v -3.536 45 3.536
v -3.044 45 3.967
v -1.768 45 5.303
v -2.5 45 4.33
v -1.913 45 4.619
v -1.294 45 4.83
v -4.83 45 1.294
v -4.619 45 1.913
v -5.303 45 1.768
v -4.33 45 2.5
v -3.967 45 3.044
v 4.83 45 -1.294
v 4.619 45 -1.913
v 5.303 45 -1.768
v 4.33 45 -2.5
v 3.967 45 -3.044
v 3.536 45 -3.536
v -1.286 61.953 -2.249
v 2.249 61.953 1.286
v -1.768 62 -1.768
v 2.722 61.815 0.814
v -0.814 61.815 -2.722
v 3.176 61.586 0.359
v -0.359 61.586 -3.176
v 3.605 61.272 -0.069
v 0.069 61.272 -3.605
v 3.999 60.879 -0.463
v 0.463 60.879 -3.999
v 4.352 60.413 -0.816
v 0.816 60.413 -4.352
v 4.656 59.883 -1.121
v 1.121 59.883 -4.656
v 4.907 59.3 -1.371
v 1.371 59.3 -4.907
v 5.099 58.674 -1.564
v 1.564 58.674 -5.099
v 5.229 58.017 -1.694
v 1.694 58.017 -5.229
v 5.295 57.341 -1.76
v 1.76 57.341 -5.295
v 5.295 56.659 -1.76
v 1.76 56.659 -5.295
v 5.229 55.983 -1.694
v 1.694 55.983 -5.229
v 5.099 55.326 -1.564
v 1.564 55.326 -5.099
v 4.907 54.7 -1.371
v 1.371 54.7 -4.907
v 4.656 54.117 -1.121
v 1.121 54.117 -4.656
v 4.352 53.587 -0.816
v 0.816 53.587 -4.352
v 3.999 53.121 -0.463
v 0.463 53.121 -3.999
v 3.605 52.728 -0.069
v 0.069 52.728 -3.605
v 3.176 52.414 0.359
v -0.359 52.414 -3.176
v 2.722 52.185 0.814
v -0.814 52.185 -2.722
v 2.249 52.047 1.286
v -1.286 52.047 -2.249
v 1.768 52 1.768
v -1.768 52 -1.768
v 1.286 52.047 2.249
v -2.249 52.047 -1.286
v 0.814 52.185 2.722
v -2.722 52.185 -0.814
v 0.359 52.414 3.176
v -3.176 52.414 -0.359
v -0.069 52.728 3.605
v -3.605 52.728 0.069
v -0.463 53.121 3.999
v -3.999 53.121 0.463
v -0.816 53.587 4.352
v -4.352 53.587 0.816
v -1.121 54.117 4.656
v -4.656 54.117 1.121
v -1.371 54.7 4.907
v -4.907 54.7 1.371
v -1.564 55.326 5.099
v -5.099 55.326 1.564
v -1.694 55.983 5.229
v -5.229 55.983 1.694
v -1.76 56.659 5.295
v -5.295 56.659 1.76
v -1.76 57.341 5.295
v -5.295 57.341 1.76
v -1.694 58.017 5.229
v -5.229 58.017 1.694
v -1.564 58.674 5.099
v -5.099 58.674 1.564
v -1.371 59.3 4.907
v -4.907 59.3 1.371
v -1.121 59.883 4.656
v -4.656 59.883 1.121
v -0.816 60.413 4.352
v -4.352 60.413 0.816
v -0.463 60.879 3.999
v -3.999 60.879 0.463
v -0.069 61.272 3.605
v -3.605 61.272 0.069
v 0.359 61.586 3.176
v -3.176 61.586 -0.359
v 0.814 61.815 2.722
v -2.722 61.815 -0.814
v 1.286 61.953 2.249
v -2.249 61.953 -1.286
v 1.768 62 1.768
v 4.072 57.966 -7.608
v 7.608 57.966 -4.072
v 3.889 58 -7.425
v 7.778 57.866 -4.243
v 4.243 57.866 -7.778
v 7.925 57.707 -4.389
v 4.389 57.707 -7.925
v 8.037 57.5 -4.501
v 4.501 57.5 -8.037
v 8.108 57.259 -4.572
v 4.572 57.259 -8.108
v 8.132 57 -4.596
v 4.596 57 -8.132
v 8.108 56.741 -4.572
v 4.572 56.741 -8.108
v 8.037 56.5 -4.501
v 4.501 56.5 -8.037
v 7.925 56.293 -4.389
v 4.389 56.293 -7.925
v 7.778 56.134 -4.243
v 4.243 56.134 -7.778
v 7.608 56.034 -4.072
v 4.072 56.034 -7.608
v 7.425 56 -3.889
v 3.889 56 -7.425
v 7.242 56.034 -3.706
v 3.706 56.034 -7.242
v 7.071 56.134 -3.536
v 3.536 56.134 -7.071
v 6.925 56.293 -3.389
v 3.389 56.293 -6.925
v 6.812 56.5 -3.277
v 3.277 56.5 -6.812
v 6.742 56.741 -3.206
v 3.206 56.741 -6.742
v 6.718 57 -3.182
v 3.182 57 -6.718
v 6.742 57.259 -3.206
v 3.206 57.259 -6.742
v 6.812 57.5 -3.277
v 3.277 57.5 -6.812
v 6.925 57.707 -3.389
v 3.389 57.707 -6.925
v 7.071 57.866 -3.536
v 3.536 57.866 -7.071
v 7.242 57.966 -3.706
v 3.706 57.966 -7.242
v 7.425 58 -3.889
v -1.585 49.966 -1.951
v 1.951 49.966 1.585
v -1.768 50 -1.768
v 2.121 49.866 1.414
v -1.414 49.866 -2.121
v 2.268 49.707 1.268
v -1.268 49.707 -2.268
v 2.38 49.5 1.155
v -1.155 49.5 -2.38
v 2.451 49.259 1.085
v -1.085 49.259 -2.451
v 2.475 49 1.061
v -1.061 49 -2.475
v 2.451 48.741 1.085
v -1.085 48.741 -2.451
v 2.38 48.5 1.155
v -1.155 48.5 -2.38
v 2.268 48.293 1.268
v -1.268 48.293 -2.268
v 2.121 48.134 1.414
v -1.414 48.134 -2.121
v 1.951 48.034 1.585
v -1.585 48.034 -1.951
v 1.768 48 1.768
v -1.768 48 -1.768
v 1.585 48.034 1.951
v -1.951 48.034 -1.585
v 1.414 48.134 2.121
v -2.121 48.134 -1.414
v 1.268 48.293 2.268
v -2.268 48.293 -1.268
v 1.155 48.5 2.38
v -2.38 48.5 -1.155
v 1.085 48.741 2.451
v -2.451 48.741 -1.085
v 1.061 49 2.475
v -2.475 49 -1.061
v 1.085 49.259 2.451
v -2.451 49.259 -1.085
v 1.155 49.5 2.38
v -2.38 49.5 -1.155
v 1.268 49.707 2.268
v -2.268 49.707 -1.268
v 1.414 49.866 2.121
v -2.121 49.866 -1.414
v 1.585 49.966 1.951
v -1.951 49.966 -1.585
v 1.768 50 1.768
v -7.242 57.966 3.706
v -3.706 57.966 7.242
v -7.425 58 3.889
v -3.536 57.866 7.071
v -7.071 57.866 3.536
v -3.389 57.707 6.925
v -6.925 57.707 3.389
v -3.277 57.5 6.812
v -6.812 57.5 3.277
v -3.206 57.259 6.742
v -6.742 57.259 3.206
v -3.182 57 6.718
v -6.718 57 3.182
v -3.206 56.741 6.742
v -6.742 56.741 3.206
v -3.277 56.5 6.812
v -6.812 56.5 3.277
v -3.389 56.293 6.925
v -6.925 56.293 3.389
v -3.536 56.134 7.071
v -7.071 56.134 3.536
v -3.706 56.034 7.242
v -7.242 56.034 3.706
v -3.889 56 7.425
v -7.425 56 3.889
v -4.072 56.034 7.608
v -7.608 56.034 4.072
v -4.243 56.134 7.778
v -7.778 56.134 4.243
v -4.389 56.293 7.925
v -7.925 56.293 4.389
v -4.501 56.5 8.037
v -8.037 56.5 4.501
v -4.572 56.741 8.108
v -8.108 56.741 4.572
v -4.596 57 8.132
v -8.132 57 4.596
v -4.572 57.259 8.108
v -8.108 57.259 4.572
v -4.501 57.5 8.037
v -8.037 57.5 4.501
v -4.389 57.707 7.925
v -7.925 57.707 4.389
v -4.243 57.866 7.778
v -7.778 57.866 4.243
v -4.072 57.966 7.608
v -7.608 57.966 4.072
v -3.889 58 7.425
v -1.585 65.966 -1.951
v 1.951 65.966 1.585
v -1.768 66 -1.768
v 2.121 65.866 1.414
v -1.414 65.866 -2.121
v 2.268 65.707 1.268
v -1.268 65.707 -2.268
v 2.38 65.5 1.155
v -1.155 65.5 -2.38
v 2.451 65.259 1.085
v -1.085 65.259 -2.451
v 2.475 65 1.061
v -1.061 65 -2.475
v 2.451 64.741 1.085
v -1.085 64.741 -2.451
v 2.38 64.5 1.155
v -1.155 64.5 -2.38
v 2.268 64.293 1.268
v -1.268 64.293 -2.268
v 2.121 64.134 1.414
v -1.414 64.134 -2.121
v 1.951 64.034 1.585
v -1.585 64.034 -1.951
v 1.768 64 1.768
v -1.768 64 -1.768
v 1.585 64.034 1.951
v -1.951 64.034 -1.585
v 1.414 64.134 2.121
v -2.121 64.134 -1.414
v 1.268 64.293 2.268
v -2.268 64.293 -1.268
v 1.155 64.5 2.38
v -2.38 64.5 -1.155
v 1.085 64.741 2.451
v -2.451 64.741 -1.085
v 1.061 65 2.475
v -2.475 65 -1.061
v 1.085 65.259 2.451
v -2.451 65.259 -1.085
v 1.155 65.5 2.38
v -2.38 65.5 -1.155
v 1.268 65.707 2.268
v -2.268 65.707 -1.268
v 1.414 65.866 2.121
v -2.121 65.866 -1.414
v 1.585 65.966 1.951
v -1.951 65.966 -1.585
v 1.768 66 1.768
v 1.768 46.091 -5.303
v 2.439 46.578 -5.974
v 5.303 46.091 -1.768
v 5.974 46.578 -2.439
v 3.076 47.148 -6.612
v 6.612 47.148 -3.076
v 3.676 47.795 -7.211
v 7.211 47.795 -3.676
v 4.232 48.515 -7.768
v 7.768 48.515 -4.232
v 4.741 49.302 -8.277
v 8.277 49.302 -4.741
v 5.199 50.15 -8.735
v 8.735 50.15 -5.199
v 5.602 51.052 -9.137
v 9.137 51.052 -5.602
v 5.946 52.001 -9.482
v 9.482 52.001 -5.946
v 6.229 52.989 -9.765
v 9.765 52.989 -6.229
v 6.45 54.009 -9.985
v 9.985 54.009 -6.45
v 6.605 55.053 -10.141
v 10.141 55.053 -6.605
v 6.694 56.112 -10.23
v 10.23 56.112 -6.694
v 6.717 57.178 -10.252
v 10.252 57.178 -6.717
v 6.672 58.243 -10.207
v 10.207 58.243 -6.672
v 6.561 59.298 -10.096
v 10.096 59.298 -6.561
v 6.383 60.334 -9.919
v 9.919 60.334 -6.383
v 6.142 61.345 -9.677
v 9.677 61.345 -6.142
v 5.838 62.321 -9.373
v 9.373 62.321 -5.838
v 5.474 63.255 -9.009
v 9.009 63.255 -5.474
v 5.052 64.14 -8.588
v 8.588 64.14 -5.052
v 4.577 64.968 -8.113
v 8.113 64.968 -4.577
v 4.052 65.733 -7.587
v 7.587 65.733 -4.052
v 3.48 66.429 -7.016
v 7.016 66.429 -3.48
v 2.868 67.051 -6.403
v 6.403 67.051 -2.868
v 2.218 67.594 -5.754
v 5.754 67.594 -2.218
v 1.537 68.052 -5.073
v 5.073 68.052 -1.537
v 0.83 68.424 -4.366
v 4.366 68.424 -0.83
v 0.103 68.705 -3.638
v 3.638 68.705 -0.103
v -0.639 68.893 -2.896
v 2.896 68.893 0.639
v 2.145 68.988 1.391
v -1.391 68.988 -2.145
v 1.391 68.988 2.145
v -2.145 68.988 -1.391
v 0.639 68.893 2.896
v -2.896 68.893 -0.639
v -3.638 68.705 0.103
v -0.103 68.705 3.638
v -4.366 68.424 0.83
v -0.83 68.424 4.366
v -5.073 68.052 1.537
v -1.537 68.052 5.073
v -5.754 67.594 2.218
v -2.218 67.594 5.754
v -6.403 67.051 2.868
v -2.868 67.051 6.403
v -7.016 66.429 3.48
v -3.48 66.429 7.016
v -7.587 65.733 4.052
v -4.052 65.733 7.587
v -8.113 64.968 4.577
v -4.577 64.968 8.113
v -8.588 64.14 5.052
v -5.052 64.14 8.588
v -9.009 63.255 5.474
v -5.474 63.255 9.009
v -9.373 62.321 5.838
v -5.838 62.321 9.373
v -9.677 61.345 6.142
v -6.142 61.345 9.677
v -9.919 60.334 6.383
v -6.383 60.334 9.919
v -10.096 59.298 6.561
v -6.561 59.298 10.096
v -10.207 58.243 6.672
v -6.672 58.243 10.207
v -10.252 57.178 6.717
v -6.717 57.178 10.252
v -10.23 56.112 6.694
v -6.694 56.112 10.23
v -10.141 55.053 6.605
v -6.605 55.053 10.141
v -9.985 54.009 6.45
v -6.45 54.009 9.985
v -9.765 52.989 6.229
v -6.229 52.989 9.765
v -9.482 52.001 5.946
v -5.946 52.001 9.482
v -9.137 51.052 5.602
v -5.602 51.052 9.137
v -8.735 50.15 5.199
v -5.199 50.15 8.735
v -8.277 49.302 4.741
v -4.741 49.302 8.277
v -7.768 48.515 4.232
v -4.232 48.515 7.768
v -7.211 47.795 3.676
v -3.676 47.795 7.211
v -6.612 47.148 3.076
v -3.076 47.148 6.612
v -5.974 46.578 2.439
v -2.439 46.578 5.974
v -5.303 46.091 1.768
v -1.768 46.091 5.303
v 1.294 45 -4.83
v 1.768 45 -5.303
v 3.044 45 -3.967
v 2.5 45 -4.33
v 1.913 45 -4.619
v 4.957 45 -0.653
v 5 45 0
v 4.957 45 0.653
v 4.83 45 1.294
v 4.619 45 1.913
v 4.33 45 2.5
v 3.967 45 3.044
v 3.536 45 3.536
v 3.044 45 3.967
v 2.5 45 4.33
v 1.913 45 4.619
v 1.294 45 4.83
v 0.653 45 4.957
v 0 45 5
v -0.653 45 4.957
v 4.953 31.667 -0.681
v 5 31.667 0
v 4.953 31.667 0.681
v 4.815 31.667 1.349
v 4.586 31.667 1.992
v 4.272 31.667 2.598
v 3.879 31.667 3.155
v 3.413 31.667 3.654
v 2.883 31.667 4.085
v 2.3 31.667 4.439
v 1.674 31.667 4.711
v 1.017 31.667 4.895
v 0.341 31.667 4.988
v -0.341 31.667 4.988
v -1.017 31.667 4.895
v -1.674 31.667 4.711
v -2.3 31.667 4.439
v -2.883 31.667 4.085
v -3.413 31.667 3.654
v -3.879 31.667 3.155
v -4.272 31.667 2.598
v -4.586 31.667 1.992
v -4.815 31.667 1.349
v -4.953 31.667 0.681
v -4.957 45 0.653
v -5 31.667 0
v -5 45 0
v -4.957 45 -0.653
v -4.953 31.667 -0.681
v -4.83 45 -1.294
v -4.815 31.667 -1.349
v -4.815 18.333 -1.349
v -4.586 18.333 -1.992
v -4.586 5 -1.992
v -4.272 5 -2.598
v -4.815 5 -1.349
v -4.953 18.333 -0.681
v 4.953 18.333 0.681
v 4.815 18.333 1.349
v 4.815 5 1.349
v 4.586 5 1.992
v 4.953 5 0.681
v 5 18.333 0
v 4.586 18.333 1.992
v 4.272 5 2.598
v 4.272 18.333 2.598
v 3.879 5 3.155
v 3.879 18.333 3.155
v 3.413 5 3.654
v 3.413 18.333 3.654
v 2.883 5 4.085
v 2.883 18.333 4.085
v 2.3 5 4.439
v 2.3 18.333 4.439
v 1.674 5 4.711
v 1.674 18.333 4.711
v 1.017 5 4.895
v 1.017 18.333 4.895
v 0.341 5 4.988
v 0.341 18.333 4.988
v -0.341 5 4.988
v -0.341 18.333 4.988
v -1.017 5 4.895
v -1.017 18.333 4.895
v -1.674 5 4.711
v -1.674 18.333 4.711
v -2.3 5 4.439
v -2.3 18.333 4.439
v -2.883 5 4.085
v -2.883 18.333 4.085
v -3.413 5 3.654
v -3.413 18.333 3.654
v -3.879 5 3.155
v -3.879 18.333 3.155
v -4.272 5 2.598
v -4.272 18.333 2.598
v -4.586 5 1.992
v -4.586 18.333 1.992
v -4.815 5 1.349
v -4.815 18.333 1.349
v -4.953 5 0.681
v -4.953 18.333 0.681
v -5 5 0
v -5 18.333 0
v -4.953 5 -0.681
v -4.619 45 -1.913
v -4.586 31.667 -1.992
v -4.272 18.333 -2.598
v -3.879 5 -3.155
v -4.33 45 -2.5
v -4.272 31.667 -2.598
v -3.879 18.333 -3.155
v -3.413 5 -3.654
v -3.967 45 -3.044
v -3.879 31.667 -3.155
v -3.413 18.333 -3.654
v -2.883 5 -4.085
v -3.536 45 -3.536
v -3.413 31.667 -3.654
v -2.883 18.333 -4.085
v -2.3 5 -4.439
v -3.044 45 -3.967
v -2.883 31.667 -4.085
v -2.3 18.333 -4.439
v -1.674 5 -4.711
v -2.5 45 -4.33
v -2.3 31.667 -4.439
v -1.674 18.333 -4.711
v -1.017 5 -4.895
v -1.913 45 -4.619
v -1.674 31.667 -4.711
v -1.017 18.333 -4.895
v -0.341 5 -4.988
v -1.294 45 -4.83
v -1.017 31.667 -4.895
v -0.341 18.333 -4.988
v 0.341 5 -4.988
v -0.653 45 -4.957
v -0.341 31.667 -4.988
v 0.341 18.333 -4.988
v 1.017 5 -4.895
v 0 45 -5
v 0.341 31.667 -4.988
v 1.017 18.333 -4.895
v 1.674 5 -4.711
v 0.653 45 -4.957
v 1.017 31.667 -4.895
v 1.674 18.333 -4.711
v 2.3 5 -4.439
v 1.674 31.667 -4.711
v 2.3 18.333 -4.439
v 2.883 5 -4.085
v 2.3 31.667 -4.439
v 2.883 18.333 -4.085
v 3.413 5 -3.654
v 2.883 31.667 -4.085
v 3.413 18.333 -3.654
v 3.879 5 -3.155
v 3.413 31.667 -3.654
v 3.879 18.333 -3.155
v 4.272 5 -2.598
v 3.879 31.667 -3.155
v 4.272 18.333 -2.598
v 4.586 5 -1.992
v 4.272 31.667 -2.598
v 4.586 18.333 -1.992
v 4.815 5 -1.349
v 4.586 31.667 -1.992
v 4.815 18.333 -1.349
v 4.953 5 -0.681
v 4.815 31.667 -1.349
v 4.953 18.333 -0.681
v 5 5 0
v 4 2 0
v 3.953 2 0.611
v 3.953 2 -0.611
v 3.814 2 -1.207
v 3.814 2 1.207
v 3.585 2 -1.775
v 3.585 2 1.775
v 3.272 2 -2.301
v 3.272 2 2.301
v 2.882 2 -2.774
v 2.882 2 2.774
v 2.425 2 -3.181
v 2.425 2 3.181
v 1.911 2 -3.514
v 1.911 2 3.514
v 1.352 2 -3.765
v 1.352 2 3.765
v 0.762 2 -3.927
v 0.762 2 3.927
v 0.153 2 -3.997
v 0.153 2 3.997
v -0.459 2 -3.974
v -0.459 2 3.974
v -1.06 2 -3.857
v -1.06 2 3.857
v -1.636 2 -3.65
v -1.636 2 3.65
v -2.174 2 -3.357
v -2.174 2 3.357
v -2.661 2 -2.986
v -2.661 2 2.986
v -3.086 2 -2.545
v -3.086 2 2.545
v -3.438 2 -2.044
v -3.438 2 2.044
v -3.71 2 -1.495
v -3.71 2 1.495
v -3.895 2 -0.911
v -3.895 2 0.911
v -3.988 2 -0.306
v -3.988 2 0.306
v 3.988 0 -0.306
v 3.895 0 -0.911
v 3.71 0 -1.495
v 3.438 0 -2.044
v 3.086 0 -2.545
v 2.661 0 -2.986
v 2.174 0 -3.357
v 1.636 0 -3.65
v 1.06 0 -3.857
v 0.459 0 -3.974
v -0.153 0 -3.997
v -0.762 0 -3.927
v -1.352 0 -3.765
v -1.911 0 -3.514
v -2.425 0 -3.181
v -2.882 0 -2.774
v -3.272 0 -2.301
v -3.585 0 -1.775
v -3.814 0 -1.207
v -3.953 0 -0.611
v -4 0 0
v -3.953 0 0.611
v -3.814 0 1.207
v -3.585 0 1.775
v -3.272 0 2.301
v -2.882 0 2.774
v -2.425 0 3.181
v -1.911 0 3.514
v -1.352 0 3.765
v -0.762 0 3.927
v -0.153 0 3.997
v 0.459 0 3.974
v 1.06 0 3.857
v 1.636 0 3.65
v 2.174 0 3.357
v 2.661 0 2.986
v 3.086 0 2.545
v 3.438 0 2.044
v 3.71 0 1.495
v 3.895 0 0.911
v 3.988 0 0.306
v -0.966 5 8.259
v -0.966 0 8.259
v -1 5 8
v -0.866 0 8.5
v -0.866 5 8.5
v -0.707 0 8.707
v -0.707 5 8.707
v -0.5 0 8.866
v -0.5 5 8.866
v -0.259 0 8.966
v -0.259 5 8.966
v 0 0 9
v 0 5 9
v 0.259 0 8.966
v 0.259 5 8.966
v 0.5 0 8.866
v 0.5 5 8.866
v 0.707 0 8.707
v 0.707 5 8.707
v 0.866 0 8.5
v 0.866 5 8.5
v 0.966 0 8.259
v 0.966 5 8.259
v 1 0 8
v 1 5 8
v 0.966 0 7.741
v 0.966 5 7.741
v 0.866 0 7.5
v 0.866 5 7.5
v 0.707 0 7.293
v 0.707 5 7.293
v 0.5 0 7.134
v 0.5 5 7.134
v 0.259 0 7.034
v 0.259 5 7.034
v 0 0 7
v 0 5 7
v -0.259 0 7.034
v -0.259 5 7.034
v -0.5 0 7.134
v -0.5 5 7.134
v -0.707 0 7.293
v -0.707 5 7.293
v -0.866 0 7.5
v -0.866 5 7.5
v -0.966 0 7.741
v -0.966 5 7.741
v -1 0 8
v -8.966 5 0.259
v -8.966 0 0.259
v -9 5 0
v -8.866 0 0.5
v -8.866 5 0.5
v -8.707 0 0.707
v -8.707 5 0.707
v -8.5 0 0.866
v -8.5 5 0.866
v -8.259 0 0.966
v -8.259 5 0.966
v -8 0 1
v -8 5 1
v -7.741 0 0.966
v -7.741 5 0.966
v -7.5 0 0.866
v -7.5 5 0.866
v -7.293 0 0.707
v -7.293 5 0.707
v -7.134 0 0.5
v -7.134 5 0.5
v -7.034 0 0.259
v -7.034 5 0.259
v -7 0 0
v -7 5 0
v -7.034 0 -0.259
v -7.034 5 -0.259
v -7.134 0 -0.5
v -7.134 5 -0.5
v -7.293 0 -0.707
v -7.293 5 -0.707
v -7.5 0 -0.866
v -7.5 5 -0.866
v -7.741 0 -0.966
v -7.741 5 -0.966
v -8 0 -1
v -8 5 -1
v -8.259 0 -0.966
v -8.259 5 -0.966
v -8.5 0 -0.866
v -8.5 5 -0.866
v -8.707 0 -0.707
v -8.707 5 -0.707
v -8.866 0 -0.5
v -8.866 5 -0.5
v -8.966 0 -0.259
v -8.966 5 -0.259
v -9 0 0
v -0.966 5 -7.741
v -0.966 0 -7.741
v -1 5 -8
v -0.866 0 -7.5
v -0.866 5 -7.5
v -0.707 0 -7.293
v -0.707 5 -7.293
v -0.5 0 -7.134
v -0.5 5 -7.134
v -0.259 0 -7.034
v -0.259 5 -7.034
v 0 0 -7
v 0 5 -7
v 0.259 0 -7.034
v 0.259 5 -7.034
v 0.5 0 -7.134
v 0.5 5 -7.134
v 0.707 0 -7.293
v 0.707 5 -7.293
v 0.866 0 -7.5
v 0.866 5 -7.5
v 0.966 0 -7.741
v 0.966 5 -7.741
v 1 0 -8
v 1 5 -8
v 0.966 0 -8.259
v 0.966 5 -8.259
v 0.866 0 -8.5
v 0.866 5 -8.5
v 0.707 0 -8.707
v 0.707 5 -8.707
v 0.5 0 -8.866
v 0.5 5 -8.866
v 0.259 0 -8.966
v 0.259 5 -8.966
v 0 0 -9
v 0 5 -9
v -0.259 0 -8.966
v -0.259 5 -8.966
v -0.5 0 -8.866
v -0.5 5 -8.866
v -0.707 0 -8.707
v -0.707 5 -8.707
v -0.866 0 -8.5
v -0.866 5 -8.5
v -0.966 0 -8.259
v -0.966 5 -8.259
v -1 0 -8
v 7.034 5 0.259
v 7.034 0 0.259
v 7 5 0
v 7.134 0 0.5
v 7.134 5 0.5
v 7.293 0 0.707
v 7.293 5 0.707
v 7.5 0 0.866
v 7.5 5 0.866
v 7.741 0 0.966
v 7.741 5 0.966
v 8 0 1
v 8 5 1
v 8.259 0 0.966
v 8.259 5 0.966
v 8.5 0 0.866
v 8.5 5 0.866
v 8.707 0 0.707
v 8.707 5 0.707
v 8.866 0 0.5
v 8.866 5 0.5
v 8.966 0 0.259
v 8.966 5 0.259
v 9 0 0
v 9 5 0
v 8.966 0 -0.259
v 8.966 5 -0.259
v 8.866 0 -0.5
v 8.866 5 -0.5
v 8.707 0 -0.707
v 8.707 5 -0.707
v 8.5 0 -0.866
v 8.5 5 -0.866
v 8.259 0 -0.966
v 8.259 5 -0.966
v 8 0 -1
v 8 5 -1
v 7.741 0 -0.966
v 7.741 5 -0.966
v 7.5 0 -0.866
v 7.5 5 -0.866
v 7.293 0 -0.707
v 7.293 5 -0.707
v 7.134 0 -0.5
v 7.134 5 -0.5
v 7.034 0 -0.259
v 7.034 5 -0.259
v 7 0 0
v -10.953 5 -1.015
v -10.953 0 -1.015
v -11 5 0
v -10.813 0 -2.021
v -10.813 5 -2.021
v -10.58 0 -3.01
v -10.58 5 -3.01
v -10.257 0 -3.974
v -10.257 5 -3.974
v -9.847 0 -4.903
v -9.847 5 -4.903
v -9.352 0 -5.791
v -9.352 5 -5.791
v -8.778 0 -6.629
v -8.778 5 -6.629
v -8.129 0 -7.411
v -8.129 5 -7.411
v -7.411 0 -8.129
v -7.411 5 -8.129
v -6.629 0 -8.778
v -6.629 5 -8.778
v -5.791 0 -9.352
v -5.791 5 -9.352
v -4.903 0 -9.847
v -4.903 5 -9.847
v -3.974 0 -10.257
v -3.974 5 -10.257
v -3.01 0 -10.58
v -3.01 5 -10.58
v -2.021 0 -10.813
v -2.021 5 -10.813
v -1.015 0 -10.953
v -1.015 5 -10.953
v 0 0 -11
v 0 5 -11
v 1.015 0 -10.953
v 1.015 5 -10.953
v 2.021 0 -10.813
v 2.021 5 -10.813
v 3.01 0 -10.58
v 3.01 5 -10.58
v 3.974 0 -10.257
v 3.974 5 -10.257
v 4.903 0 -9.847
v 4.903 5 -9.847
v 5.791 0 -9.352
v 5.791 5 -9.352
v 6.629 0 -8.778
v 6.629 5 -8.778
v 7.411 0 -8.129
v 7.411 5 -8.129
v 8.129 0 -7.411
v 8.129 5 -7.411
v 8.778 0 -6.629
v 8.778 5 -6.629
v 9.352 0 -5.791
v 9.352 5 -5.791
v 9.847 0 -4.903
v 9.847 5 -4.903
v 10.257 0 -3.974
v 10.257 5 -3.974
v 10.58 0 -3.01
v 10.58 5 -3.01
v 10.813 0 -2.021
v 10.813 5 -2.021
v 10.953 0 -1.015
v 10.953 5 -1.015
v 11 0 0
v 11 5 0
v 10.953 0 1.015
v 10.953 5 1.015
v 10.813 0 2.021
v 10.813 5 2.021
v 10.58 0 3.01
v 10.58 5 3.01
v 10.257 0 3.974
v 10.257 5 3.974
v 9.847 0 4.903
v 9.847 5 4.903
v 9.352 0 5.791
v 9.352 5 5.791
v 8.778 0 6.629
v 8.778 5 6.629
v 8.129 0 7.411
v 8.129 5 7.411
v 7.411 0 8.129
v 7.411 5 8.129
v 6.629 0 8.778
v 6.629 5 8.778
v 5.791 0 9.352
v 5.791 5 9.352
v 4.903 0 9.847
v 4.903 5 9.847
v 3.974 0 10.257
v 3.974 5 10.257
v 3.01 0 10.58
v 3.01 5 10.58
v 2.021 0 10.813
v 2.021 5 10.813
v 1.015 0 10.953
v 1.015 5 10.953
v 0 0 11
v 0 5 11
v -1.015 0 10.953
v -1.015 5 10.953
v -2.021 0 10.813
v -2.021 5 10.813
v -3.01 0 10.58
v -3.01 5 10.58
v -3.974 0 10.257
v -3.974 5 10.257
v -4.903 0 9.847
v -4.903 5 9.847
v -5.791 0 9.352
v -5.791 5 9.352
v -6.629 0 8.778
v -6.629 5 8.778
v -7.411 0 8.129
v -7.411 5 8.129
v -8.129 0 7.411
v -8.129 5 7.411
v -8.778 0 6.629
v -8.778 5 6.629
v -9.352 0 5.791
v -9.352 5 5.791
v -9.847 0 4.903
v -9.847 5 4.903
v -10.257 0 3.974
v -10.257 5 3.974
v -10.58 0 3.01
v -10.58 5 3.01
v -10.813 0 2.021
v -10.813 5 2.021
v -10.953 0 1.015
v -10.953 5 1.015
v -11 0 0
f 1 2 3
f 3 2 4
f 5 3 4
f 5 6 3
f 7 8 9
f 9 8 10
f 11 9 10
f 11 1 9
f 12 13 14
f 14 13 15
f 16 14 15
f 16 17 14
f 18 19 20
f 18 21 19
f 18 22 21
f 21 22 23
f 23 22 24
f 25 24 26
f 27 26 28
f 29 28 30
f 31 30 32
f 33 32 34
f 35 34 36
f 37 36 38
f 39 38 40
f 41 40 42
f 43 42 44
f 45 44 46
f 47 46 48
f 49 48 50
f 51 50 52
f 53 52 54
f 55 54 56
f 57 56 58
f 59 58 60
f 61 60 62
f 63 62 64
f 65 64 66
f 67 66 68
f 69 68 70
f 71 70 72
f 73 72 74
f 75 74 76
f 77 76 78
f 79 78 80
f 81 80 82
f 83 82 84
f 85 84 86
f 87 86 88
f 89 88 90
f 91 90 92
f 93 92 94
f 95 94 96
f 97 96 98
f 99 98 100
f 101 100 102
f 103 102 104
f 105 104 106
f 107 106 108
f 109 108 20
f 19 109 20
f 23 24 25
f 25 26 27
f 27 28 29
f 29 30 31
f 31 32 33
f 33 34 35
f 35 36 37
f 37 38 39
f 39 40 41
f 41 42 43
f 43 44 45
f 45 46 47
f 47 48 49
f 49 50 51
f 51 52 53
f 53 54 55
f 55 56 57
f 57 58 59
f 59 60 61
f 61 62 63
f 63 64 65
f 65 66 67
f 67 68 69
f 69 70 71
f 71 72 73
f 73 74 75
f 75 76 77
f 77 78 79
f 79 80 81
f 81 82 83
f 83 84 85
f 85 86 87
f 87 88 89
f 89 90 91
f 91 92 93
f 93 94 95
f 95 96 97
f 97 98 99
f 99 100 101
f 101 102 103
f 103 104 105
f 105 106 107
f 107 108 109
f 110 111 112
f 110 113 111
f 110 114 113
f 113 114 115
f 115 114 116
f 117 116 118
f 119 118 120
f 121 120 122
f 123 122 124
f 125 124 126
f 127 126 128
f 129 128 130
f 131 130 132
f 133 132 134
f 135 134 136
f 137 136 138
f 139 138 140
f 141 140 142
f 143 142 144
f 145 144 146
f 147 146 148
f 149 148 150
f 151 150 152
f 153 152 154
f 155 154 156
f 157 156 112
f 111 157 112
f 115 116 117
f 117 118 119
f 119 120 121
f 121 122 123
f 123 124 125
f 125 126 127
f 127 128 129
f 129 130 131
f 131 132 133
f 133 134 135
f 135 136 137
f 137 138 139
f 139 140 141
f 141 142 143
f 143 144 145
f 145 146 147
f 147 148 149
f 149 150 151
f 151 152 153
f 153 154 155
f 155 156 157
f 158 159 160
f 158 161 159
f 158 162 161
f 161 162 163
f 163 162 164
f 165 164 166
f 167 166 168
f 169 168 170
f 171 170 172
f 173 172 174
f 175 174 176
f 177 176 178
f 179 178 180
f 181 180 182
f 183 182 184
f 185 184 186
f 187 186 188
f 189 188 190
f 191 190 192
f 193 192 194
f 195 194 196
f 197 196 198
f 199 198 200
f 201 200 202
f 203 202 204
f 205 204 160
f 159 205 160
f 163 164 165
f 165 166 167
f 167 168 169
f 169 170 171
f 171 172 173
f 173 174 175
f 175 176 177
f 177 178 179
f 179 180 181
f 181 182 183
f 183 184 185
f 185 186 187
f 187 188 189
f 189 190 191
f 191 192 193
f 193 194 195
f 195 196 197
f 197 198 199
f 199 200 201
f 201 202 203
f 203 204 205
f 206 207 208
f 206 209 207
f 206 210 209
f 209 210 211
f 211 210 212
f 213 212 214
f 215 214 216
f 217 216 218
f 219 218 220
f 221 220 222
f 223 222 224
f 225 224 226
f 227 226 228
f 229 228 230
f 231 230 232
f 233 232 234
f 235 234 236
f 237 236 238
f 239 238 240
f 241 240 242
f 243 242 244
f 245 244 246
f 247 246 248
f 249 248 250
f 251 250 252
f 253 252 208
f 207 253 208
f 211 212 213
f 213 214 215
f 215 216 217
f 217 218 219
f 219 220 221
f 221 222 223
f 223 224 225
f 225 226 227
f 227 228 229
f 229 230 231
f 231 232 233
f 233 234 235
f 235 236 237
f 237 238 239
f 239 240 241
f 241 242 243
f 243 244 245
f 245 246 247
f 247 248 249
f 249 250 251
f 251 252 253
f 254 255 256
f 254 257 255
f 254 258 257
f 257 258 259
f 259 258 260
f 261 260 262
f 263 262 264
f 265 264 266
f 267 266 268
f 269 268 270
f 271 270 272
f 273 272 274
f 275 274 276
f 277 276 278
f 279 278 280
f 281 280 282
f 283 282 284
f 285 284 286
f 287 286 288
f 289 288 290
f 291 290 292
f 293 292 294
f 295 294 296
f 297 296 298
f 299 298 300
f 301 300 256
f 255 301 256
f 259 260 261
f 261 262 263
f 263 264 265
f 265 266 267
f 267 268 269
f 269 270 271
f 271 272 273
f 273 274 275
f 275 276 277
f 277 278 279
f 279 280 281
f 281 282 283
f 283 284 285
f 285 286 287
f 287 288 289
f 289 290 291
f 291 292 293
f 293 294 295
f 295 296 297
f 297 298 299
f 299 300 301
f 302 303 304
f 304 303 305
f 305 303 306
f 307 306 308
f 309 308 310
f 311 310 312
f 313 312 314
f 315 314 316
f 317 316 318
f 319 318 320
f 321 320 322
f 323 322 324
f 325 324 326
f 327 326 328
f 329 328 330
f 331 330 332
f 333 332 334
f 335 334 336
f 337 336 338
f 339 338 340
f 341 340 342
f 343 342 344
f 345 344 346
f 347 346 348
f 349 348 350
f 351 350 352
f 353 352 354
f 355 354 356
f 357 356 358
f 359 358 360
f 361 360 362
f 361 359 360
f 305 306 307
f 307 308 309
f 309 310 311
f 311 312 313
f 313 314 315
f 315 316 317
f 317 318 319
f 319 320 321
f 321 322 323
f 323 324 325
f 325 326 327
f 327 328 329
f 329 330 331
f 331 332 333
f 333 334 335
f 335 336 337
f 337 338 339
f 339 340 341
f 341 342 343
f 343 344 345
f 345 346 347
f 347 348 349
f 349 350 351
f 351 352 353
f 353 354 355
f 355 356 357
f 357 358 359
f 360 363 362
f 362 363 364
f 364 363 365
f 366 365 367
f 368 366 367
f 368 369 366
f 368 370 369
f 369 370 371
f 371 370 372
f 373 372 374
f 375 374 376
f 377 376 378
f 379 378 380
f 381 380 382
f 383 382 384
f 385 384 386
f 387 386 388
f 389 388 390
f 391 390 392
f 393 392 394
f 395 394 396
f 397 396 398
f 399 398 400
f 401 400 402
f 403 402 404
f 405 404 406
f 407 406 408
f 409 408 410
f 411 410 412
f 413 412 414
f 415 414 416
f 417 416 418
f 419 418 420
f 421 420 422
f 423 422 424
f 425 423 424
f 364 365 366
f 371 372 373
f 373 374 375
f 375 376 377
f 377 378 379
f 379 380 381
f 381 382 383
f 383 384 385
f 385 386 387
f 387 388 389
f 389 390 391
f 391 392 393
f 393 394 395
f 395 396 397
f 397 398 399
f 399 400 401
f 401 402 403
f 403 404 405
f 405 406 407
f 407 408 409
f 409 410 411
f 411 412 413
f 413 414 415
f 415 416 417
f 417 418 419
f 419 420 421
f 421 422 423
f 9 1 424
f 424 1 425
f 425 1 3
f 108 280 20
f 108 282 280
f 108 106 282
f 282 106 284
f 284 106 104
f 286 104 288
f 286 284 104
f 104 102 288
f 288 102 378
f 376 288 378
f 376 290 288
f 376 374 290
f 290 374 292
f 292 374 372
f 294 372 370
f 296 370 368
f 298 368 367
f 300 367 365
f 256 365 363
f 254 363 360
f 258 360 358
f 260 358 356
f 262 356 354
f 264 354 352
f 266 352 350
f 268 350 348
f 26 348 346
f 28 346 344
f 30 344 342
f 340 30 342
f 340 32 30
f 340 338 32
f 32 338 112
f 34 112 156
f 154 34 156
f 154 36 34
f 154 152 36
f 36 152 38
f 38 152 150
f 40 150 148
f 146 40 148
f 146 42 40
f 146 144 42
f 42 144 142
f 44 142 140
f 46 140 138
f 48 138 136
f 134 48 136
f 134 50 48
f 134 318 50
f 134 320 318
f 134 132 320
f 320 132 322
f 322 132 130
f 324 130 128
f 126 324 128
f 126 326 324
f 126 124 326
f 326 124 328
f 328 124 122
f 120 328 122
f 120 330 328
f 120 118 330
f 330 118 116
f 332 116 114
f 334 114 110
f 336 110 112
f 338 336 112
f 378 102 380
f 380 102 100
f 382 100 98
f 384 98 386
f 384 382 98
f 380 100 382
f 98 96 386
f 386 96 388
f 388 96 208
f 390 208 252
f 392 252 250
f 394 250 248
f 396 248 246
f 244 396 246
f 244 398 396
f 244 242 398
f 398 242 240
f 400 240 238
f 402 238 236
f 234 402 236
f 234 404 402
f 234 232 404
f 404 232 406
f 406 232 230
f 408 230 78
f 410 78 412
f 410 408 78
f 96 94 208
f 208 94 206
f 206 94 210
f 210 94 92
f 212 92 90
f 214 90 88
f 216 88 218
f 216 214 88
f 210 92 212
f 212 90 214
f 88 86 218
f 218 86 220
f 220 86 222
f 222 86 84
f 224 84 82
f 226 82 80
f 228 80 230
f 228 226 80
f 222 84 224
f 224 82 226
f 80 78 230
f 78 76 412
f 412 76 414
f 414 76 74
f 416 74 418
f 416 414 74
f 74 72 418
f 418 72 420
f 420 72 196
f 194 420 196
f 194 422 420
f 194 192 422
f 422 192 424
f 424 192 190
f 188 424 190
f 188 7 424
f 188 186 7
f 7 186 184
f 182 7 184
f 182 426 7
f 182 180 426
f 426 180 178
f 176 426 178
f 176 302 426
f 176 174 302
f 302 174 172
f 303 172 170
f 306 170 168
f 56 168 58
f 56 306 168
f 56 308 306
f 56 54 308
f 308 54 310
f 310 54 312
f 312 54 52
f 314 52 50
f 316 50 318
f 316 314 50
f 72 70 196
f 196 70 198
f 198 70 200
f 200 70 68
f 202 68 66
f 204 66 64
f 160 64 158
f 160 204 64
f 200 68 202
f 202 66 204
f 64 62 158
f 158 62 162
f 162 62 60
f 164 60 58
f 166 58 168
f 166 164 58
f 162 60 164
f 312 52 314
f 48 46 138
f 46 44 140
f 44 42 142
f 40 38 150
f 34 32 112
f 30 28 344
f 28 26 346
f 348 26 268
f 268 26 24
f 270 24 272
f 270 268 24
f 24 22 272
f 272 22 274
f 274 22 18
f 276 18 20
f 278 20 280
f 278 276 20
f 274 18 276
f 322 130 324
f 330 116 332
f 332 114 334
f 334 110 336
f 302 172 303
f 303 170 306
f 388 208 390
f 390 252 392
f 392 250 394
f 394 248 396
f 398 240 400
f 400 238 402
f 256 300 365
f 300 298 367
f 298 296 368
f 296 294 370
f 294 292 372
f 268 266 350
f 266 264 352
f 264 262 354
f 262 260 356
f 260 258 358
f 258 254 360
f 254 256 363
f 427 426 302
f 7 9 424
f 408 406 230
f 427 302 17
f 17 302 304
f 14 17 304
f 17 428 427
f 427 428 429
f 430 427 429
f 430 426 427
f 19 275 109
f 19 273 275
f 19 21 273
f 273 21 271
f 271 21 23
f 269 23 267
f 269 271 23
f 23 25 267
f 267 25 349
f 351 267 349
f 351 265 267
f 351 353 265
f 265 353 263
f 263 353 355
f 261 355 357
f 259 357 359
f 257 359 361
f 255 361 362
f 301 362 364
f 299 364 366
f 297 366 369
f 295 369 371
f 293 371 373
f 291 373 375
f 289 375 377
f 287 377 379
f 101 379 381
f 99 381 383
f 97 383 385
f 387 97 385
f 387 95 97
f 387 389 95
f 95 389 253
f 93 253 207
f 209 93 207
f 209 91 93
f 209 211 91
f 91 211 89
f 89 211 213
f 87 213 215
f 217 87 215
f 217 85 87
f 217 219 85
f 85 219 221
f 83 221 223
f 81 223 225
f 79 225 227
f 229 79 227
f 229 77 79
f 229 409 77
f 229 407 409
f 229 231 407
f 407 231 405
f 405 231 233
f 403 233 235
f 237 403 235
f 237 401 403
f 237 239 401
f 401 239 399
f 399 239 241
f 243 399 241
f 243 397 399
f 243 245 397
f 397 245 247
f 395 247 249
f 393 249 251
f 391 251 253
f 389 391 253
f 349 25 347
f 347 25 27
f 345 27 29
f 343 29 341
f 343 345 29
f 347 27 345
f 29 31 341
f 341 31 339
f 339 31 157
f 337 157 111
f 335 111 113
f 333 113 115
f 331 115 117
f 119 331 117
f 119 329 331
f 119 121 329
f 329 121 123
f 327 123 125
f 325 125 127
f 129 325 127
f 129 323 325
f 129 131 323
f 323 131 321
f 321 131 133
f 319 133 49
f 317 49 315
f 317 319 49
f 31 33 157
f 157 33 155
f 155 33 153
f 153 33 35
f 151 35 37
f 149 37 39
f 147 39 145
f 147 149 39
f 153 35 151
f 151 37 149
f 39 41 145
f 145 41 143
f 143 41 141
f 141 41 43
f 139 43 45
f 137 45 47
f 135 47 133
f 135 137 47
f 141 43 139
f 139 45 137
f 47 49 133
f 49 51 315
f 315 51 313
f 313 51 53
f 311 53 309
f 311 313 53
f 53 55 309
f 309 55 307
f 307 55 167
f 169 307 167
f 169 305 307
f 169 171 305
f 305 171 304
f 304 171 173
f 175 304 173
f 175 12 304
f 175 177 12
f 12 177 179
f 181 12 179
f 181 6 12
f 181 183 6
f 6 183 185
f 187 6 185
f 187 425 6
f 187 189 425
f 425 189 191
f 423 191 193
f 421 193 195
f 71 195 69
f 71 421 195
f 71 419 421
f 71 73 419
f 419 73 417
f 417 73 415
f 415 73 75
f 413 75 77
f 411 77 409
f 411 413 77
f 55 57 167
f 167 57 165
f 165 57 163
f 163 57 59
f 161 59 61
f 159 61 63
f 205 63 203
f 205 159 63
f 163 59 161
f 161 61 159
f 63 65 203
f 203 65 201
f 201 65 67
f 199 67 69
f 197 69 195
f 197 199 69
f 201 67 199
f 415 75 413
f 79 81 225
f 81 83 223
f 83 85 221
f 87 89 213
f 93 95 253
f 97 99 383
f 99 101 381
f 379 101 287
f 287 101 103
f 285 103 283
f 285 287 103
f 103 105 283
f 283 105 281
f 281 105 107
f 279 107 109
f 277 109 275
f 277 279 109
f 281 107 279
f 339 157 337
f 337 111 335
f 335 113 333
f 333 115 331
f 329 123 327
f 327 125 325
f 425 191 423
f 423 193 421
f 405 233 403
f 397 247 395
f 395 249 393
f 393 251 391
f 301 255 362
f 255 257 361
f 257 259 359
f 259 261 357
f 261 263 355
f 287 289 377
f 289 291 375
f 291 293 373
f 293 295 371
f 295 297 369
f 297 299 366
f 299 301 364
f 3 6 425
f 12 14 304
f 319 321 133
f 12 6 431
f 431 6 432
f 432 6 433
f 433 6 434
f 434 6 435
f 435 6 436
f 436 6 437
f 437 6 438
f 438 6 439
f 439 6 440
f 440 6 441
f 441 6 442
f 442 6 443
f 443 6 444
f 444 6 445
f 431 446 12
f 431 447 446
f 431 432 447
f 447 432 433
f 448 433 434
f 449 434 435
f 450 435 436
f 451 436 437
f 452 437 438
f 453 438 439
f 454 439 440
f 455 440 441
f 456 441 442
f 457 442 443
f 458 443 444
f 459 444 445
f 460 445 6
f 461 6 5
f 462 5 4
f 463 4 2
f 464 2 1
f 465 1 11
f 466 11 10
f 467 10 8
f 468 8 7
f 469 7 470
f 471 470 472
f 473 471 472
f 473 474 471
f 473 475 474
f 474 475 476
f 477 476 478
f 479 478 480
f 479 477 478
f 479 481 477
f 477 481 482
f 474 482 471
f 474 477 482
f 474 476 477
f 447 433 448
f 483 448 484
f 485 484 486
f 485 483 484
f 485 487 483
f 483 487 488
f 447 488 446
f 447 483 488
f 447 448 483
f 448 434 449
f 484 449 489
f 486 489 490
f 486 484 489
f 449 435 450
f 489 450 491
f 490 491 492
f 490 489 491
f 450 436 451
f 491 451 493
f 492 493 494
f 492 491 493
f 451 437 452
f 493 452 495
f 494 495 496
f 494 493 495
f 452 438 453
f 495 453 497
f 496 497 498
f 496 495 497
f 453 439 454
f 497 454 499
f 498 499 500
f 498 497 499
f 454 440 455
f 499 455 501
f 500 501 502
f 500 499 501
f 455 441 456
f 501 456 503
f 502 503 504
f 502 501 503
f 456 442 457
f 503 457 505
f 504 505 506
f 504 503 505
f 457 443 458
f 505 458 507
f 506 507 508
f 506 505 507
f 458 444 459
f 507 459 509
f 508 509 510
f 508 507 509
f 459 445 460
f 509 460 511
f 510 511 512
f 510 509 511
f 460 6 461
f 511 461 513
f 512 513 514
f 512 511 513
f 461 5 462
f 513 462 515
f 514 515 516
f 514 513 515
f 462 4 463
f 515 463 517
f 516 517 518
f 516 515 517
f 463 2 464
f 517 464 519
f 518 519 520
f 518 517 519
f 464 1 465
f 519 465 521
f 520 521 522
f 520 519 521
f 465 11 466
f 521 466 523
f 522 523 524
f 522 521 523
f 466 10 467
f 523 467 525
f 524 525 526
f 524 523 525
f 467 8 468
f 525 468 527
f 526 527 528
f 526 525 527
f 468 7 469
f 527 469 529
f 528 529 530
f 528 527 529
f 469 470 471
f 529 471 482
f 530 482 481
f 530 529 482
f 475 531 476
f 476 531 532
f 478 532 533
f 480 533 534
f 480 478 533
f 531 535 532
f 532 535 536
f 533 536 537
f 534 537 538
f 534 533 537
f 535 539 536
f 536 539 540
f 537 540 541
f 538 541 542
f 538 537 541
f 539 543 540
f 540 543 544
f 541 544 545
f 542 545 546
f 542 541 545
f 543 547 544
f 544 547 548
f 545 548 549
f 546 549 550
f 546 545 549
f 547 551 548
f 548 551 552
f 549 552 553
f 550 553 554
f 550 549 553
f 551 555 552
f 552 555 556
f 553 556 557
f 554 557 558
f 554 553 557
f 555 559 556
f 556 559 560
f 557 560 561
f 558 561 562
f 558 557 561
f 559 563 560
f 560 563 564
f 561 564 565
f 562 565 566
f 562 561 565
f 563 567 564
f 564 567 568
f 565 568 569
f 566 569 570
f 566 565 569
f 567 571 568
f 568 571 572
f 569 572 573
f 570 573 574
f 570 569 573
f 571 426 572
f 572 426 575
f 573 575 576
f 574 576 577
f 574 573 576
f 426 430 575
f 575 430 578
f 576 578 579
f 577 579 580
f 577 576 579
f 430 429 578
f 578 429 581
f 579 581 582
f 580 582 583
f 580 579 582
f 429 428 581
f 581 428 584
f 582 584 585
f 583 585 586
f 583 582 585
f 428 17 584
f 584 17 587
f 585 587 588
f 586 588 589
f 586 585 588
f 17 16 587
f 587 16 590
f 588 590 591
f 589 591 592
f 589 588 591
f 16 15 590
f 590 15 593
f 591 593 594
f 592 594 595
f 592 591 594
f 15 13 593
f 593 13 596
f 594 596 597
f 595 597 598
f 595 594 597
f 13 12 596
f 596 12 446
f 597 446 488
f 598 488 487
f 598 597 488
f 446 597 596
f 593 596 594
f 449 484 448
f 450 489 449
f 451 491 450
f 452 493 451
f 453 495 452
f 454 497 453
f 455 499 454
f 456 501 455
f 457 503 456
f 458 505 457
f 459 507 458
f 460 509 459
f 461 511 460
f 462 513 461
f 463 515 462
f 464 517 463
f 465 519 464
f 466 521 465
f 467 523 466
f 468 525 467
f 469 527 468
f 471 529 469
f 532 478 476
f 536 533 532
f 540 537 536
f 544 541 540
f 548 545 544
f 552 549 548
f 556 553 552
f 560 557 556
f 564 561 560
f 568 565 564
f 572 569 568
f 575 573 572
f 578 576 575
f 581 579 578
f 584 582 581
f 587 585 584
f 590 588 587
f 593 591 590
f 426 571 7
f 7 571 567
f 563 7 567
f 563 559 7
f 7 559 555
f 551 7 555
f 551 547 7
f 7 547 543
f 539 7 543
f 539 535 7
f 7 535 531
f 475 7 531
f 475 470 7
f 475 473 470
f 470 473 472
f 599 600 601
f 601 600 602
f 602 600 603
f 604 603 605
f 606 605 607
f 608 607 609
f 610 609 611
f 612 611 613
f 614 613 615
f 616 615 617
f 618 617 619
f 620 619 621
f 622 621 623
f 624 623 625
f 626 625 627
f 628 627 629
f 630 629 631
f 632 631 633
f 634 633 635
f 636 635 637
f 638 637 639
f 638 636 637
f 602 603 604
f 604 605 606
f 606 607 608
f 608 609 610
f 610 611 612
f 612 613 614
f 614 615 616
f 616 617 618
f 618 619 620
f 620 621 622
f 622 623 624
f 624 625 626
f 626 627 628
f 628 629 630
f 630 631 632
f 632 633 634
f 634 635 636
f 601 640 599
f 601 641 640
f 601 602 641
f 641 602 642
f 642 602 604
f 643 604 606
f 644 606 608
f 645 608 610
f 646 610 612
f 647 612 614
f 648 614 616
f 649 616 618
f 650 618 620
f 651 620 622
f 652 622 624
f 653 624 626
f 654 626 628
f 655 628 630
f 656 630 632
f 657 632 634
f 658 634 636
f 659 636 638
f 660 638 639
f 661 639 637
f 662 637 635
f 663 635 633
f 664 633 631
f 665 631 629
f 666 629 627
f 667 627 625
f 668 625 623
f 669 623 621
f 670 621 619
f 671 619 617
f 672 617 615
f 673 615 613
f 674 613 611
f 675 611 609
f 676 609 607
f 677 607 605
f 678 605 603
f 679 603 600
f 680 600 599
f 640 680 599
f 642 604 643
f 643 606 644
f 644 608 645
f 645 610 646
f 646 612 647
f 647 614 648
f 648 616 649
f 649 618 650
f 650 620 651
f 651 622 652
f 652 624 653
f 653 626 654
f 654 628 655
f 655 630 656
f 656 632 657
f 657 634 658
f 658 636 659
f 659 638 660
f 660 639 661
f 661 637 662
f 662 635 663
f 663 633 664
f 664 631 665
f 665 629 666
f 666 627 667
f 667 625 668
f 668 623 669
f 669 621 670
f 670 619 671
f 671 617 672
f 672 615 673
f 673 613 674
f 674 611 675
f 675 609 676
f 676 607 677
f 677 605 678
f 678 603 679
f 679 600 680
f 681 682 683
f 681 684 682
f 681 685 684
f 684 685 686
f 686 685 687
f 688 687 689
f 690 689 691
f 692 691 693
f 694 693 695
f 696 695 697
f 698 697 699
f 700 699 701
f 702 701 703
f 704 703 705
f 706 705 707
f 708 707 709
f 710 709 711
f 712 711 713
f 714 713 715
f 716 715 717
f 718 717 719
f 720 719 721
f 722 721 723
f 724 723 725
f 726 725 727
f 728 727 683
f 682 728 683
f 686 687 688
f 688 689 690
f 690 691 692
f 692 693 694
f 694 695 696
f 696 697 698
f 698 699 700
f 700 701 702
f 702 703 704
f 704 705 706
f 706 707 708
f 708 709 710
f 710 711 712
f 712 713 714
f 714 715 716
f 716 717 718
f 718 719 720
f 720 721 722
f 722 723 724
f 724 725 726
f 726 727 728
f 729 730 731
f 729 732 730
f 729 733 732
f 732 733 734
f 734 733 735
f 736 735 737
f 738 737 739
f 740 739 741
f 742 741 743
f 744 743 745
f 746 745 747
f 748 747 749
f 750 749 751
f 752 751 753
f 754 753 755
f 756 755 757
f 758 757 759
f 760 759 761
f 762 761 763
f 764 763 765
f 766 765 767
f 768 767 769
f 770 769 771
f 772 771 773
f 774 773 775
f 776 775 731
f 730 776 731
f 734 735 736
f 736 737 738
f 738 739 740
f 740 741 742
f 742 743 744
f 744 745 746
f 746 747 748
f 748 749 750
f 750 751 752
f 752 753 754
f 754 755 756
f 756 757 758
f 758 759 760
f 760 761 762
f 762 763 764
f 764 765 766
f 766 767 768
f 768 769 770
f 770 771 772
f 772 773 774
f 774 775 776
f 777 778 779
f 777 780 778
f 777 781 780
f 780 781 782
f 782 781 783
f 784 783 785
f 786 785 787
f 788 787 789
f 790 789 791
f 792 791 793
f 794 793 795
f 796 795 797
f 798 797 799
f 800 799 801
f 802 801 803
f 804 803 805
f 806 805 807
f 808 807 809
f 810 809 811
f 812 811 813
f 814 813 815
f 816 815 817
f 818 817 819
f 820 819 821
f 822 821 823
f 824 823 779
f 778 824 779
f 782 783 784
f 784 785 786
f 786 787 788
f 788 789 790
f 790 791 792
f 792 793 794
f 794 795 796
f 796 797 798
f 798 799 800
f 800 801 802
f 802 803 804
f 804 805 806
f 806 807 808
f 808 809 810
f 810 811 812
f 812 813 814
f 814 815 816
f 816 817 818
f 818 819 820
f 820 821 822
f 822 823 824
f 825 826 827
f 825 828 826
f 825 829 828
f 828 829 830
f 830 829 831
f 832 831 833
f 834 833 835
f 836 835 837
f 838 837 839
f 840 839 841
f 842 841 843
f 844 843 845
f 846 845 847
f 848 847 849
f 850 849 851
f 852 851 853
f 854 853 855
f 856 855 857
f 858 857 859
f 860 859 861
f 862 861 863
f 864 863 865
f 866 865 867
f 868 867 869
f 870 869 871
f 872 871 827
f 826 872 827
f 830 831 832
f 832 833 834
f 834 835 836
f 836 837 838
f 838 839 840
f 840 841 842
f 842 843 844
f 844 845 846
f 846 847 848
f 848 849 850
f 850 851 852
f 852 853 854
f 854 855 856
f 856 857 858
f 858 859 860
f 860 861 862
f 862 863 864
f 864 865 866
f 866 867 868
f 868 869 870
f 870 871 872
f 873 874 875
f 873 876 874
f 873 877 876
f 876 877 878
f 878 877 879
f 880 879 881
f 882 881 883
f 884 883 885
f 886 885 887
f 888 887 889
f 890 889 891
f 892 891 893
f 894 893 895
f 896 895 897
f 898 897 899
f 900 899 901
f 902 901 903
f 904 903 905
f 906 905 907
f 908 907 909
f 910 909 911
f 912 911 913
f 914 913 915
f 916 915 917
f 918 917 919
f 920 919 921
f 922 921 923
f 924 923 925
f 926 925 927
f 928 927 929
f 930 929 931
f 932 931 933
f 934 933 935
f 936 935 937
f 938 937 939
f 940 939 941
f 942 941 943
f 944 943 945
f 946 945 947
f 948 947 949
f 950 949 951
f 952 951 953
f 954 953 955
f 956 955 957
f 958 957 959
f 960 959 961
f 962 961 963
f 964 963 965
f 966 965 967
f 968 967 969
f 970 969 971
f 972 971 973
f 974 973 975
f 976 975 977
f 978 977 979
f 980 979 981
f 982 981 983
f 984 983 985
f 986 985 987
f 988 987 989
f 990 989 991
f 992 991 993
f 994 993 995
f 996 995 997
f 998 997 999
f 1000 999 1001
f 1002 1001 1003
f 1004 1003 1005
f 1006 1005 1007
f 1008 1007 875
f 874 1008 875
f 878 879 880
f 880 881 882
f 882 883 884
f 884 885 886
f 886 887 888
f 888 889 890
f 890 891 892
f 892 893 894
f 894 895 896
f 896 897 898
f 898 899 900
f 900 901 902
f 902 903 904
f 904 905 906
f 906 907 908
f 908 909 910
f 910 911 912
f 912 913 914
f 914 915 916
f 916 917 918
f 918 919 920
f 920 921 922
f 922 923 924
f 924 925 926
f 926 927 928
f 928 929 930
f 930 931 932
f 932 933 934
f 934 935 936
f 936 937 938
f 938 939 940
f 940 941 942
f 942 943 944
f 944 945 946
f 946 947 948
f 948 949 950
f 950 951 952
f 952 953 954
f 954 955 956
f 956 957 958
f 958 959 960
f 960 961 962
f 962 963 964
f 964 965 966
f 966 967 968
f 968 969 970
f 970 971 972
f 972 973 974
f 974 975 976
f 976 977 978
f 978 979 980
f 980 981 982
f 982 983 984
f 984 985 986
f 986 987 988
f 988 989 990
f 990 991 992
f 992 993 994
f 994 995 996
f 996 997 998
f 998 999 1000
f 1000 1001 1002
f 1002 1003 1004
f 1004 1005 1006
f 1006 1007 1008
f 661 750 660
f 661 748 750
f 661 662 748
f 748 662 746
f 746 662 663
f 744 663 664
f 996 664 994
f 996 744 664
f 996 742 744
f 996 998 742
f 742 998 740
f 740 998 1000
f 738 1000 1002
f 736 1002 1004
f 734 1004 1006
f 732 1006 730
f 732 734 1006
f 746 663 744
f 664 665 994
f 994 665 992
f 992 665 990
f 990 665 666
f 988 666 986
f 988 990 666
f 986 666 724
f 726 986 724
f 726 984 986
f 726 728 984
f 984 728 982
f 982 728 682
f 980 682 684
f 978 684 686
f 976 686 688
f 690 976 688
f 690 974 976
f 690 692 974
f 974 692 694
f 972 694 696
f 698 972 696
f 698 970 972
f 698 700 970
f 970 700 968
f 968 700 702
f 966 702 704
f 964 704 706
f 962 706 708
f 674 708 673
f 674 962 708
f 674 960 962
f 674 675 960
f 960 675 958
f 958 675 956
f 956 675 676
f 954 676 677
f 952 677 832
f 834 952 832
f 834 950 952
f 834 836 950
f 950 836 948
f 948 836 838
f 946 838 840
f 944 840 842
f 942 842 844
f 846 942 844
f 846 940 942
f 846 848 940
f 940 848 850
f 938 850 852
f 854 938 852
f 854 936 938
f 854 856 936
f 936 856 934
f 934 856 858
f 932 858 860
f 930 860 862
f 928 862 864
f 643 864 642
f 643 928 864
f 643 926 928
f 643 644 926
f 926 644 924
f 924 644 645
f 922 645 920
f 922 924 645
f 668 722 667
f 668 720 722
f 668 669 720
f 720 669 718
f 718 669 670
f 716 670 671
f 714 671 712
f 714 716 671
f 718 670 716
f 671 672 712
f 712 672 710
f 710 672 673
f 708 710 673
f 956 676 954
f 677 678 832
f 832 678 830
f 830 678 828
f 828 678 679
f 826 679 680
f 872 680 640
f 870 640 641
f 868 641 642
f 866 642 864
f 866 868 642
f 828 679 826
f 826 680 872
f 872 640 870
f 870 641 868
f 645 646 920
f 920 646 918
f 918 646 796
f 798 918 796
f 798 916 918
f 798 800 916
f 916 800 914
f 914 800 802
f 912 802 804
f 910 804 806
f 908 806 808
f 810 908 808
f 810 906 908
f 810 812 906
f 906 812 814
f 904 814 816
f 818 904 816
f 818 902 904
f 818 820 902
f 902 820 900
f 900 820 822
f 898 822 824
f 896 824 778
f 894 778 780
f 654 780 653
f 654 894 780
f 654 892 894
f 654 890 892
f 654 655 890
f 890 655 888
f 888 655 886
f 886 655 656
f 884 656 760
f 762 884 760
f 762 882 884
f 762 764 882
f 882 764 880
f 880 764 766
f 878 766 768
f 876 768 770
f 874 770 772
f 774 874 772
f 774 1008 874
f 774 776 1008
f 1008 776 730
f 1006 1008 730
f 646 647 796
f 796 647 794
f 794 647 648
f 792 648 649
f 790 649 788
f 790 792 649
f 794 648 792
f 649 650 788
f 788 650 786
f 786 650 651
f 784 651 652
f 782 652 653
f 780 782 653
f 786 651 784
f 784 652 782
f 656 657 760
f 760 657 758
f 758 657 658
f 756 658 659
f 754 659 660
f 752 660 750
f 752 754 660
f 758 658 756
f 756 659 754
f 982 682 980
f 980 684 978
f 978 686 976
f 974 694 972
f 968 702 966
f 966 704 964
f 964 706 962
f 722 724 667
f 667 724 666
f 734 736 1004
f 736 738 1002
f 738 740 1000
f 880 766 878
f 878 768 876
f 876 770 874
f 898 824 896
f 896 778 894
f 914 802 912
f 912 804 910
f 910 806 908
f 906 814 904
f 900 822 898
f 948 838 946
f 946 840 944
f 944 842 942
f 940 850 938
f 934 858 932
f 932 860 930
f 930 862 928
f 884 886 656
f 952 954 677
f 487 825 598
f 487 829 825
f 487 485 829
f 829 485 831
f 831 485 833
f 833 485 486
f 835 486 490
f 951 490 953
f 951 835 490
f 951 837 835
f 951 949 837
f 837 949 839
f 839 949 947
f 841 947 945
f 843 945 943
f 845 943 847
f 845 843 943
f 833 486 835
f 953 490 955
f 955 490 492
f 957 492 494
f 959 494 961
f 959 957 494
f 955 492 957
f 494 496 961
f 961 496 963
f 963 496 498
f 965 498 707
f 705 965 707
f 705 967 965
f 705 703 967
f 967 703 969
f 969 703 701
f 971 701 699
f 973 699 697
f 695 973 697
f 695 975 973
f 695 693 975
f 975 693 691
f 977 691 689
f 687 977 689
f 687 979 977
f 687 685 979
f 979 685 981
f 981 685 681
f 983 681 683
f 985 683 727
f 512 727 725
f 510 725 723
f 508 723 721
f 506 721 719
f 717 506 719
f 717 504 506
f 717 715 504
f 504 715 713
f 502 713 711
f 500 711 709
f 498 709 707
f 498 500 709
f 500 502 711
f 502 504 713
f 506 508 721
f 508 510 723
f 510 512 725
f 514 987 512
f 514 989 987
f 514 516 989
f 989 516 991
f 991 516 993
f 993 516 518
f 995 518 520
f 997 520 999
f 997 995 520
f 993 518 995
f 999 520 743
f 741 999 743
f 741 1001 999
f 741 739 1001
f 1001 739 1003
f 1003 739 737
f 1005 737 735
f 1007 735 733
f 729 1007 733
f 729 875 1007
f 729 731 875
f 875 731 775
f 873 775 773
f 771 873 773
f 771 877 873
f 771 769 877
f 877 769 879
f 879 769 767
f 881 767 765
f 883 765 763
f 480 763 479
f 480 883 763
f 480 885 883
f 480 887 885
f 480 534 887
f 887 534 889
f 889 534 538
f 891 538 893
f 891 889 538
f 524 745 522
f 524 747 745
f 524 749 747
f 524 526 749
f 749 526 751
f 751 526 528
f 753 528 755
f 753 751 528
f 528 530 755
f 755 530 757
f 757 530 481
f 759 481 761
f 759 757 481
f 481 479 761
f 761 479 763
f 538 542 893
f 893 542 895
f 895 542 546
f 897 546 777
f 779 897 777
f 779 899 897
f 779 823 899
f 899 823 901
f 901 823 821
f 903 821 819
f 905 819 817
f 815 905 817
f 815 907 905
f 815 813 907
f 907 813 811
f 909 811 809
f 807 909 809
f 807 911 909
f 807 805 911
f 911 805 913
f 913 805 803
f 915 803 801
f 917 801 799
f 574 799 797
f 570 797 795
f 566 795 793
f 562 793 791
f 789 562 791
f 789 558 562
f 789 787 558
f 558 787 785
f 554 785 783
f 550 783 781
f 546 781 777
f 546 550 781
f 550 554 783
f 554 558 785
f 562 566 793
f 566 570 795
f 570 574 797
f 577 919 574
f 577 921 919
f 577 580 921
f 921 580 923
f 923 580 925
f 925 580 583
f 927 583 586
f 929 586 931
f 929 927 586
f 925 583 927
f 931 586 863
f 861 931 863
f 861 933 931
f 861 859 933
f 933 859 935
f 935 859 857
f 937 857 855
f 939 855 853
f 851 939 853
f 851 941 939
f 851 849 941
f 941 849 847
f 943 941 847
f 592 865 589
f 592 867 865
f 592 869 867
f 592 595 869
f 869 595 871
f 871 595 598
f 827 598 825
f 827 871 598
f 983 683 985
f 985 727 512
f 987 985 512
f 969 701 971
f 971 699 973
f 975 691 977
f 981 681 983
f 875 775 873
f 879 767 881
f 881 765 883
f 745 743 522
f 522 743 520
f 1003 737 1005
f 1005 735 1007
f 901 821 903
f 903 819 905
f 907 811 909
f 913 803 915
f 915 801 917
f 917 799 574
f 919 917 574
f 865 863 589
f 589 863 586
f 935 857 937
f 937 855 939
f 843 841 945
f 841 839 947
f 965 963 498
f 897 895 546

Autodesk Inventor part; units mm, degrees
ref_plane "YZ Plane" through (0, 0, 0) normal (1, 0, 0) x (0, 1, 0)
ref_plane "XZ Plane" through (0, 0, 0) normal (0, 1, 0) x (-1, 0, 0)
sketch "Esquisse1" plane through (0, 0, 0) normal (0, 1, 0) x (-1, 0, 0)
  circle A0 centre (0, 0) radius 11
  line L0 (0, 0) -> (-8, 0) construction
  circle A1 centre (-8, 0) radius 1
  circle A2 centre (0, -8) radius 1
  circle A3 centre (8, 0) radius 1
  circle A4 centre (0, 8) radius 1
  circle A5 centre (0, 0) radius 4
  dimension "d0" = 22
  dimension "d1" = 8
  dimension "d2" = 2
  dimension "d5" = 360
  dimension "d7" = 8
extrude "Extrusion1" add sketch "Esquisse1" along normal blind 5
sketch "Esquisse2" plane through (0, 5, 0) normal (0, 1, 0) x (1, 0, 0)
  circle A0 centre (0, 0) radius 4 projected
extrude "Extrusion2" add sketch "Esquisse2" against normal blind 3
sketch "Esquisse3" plane through (0, 5, 0) normal (0, 1, 0) x (1, 0, 0)
  circle A0 centre (0, 0) radius 11 projected
  circle A1 centre (0, 0) radius 5
  dimension "d12" = 10
extrude "Extrusion3" add sketch "Esquisse3" along normal blind 40 contours A1
ref_plane "Plan de construction1" through (0, 0, 0) normal (0.7071, 0, 0.7071) x (0, 1, 0)
sketch "Esquisse4" plane through (0, 0, 0) normal (0.7071, 0, 0.7071) x (0, 1, 0)
  line L0 (0, 0) -> (5, 0) construction
  line L1 (5, 0) -> (5, -5) construction
  line L2 (5, 0) -> (5, 5)
  line L3 (5, 0) -> (5, -5)
  line L4 (0, 0) -> (45, 0) construction
  line L5 (45, 0) -> (57, 0) construction
  circle A0 centre (57, 0) radius 12
  circle A1 centre (57, 0) radius 8 construction
  line L6 (0, 0) -> (45, 0) construction
  line L7 (45, 0) -> (57, 0) construction
  circle A2 centre (65, 0) radius 1
  circle A3 centre (57, 8) radius 1
  circle A4 centre (49, 0) radius 1
  circle A5 centre (57, -8) radius 1
  circle A6 centre (57, 0) radius 5
  line L8 (46.0913, 5) -> (45, 5)
  line L9 (45, 5) -> (45, 0)
  line L10 (45, -5) -> (46.0913, -5)
  line L11 (45, 0) -> (45, -5)
  dimension "d53" = 16
  dimension "d36" = 45
  dimension "d52" = 12
  dimension "d54" = 2
  dimension "d57" = 360
  dimension "d59" = 10
extrude "Extrusion6" add sketch "Esquisse4" along normal mid plane 5
properties part number "neck_v2"
